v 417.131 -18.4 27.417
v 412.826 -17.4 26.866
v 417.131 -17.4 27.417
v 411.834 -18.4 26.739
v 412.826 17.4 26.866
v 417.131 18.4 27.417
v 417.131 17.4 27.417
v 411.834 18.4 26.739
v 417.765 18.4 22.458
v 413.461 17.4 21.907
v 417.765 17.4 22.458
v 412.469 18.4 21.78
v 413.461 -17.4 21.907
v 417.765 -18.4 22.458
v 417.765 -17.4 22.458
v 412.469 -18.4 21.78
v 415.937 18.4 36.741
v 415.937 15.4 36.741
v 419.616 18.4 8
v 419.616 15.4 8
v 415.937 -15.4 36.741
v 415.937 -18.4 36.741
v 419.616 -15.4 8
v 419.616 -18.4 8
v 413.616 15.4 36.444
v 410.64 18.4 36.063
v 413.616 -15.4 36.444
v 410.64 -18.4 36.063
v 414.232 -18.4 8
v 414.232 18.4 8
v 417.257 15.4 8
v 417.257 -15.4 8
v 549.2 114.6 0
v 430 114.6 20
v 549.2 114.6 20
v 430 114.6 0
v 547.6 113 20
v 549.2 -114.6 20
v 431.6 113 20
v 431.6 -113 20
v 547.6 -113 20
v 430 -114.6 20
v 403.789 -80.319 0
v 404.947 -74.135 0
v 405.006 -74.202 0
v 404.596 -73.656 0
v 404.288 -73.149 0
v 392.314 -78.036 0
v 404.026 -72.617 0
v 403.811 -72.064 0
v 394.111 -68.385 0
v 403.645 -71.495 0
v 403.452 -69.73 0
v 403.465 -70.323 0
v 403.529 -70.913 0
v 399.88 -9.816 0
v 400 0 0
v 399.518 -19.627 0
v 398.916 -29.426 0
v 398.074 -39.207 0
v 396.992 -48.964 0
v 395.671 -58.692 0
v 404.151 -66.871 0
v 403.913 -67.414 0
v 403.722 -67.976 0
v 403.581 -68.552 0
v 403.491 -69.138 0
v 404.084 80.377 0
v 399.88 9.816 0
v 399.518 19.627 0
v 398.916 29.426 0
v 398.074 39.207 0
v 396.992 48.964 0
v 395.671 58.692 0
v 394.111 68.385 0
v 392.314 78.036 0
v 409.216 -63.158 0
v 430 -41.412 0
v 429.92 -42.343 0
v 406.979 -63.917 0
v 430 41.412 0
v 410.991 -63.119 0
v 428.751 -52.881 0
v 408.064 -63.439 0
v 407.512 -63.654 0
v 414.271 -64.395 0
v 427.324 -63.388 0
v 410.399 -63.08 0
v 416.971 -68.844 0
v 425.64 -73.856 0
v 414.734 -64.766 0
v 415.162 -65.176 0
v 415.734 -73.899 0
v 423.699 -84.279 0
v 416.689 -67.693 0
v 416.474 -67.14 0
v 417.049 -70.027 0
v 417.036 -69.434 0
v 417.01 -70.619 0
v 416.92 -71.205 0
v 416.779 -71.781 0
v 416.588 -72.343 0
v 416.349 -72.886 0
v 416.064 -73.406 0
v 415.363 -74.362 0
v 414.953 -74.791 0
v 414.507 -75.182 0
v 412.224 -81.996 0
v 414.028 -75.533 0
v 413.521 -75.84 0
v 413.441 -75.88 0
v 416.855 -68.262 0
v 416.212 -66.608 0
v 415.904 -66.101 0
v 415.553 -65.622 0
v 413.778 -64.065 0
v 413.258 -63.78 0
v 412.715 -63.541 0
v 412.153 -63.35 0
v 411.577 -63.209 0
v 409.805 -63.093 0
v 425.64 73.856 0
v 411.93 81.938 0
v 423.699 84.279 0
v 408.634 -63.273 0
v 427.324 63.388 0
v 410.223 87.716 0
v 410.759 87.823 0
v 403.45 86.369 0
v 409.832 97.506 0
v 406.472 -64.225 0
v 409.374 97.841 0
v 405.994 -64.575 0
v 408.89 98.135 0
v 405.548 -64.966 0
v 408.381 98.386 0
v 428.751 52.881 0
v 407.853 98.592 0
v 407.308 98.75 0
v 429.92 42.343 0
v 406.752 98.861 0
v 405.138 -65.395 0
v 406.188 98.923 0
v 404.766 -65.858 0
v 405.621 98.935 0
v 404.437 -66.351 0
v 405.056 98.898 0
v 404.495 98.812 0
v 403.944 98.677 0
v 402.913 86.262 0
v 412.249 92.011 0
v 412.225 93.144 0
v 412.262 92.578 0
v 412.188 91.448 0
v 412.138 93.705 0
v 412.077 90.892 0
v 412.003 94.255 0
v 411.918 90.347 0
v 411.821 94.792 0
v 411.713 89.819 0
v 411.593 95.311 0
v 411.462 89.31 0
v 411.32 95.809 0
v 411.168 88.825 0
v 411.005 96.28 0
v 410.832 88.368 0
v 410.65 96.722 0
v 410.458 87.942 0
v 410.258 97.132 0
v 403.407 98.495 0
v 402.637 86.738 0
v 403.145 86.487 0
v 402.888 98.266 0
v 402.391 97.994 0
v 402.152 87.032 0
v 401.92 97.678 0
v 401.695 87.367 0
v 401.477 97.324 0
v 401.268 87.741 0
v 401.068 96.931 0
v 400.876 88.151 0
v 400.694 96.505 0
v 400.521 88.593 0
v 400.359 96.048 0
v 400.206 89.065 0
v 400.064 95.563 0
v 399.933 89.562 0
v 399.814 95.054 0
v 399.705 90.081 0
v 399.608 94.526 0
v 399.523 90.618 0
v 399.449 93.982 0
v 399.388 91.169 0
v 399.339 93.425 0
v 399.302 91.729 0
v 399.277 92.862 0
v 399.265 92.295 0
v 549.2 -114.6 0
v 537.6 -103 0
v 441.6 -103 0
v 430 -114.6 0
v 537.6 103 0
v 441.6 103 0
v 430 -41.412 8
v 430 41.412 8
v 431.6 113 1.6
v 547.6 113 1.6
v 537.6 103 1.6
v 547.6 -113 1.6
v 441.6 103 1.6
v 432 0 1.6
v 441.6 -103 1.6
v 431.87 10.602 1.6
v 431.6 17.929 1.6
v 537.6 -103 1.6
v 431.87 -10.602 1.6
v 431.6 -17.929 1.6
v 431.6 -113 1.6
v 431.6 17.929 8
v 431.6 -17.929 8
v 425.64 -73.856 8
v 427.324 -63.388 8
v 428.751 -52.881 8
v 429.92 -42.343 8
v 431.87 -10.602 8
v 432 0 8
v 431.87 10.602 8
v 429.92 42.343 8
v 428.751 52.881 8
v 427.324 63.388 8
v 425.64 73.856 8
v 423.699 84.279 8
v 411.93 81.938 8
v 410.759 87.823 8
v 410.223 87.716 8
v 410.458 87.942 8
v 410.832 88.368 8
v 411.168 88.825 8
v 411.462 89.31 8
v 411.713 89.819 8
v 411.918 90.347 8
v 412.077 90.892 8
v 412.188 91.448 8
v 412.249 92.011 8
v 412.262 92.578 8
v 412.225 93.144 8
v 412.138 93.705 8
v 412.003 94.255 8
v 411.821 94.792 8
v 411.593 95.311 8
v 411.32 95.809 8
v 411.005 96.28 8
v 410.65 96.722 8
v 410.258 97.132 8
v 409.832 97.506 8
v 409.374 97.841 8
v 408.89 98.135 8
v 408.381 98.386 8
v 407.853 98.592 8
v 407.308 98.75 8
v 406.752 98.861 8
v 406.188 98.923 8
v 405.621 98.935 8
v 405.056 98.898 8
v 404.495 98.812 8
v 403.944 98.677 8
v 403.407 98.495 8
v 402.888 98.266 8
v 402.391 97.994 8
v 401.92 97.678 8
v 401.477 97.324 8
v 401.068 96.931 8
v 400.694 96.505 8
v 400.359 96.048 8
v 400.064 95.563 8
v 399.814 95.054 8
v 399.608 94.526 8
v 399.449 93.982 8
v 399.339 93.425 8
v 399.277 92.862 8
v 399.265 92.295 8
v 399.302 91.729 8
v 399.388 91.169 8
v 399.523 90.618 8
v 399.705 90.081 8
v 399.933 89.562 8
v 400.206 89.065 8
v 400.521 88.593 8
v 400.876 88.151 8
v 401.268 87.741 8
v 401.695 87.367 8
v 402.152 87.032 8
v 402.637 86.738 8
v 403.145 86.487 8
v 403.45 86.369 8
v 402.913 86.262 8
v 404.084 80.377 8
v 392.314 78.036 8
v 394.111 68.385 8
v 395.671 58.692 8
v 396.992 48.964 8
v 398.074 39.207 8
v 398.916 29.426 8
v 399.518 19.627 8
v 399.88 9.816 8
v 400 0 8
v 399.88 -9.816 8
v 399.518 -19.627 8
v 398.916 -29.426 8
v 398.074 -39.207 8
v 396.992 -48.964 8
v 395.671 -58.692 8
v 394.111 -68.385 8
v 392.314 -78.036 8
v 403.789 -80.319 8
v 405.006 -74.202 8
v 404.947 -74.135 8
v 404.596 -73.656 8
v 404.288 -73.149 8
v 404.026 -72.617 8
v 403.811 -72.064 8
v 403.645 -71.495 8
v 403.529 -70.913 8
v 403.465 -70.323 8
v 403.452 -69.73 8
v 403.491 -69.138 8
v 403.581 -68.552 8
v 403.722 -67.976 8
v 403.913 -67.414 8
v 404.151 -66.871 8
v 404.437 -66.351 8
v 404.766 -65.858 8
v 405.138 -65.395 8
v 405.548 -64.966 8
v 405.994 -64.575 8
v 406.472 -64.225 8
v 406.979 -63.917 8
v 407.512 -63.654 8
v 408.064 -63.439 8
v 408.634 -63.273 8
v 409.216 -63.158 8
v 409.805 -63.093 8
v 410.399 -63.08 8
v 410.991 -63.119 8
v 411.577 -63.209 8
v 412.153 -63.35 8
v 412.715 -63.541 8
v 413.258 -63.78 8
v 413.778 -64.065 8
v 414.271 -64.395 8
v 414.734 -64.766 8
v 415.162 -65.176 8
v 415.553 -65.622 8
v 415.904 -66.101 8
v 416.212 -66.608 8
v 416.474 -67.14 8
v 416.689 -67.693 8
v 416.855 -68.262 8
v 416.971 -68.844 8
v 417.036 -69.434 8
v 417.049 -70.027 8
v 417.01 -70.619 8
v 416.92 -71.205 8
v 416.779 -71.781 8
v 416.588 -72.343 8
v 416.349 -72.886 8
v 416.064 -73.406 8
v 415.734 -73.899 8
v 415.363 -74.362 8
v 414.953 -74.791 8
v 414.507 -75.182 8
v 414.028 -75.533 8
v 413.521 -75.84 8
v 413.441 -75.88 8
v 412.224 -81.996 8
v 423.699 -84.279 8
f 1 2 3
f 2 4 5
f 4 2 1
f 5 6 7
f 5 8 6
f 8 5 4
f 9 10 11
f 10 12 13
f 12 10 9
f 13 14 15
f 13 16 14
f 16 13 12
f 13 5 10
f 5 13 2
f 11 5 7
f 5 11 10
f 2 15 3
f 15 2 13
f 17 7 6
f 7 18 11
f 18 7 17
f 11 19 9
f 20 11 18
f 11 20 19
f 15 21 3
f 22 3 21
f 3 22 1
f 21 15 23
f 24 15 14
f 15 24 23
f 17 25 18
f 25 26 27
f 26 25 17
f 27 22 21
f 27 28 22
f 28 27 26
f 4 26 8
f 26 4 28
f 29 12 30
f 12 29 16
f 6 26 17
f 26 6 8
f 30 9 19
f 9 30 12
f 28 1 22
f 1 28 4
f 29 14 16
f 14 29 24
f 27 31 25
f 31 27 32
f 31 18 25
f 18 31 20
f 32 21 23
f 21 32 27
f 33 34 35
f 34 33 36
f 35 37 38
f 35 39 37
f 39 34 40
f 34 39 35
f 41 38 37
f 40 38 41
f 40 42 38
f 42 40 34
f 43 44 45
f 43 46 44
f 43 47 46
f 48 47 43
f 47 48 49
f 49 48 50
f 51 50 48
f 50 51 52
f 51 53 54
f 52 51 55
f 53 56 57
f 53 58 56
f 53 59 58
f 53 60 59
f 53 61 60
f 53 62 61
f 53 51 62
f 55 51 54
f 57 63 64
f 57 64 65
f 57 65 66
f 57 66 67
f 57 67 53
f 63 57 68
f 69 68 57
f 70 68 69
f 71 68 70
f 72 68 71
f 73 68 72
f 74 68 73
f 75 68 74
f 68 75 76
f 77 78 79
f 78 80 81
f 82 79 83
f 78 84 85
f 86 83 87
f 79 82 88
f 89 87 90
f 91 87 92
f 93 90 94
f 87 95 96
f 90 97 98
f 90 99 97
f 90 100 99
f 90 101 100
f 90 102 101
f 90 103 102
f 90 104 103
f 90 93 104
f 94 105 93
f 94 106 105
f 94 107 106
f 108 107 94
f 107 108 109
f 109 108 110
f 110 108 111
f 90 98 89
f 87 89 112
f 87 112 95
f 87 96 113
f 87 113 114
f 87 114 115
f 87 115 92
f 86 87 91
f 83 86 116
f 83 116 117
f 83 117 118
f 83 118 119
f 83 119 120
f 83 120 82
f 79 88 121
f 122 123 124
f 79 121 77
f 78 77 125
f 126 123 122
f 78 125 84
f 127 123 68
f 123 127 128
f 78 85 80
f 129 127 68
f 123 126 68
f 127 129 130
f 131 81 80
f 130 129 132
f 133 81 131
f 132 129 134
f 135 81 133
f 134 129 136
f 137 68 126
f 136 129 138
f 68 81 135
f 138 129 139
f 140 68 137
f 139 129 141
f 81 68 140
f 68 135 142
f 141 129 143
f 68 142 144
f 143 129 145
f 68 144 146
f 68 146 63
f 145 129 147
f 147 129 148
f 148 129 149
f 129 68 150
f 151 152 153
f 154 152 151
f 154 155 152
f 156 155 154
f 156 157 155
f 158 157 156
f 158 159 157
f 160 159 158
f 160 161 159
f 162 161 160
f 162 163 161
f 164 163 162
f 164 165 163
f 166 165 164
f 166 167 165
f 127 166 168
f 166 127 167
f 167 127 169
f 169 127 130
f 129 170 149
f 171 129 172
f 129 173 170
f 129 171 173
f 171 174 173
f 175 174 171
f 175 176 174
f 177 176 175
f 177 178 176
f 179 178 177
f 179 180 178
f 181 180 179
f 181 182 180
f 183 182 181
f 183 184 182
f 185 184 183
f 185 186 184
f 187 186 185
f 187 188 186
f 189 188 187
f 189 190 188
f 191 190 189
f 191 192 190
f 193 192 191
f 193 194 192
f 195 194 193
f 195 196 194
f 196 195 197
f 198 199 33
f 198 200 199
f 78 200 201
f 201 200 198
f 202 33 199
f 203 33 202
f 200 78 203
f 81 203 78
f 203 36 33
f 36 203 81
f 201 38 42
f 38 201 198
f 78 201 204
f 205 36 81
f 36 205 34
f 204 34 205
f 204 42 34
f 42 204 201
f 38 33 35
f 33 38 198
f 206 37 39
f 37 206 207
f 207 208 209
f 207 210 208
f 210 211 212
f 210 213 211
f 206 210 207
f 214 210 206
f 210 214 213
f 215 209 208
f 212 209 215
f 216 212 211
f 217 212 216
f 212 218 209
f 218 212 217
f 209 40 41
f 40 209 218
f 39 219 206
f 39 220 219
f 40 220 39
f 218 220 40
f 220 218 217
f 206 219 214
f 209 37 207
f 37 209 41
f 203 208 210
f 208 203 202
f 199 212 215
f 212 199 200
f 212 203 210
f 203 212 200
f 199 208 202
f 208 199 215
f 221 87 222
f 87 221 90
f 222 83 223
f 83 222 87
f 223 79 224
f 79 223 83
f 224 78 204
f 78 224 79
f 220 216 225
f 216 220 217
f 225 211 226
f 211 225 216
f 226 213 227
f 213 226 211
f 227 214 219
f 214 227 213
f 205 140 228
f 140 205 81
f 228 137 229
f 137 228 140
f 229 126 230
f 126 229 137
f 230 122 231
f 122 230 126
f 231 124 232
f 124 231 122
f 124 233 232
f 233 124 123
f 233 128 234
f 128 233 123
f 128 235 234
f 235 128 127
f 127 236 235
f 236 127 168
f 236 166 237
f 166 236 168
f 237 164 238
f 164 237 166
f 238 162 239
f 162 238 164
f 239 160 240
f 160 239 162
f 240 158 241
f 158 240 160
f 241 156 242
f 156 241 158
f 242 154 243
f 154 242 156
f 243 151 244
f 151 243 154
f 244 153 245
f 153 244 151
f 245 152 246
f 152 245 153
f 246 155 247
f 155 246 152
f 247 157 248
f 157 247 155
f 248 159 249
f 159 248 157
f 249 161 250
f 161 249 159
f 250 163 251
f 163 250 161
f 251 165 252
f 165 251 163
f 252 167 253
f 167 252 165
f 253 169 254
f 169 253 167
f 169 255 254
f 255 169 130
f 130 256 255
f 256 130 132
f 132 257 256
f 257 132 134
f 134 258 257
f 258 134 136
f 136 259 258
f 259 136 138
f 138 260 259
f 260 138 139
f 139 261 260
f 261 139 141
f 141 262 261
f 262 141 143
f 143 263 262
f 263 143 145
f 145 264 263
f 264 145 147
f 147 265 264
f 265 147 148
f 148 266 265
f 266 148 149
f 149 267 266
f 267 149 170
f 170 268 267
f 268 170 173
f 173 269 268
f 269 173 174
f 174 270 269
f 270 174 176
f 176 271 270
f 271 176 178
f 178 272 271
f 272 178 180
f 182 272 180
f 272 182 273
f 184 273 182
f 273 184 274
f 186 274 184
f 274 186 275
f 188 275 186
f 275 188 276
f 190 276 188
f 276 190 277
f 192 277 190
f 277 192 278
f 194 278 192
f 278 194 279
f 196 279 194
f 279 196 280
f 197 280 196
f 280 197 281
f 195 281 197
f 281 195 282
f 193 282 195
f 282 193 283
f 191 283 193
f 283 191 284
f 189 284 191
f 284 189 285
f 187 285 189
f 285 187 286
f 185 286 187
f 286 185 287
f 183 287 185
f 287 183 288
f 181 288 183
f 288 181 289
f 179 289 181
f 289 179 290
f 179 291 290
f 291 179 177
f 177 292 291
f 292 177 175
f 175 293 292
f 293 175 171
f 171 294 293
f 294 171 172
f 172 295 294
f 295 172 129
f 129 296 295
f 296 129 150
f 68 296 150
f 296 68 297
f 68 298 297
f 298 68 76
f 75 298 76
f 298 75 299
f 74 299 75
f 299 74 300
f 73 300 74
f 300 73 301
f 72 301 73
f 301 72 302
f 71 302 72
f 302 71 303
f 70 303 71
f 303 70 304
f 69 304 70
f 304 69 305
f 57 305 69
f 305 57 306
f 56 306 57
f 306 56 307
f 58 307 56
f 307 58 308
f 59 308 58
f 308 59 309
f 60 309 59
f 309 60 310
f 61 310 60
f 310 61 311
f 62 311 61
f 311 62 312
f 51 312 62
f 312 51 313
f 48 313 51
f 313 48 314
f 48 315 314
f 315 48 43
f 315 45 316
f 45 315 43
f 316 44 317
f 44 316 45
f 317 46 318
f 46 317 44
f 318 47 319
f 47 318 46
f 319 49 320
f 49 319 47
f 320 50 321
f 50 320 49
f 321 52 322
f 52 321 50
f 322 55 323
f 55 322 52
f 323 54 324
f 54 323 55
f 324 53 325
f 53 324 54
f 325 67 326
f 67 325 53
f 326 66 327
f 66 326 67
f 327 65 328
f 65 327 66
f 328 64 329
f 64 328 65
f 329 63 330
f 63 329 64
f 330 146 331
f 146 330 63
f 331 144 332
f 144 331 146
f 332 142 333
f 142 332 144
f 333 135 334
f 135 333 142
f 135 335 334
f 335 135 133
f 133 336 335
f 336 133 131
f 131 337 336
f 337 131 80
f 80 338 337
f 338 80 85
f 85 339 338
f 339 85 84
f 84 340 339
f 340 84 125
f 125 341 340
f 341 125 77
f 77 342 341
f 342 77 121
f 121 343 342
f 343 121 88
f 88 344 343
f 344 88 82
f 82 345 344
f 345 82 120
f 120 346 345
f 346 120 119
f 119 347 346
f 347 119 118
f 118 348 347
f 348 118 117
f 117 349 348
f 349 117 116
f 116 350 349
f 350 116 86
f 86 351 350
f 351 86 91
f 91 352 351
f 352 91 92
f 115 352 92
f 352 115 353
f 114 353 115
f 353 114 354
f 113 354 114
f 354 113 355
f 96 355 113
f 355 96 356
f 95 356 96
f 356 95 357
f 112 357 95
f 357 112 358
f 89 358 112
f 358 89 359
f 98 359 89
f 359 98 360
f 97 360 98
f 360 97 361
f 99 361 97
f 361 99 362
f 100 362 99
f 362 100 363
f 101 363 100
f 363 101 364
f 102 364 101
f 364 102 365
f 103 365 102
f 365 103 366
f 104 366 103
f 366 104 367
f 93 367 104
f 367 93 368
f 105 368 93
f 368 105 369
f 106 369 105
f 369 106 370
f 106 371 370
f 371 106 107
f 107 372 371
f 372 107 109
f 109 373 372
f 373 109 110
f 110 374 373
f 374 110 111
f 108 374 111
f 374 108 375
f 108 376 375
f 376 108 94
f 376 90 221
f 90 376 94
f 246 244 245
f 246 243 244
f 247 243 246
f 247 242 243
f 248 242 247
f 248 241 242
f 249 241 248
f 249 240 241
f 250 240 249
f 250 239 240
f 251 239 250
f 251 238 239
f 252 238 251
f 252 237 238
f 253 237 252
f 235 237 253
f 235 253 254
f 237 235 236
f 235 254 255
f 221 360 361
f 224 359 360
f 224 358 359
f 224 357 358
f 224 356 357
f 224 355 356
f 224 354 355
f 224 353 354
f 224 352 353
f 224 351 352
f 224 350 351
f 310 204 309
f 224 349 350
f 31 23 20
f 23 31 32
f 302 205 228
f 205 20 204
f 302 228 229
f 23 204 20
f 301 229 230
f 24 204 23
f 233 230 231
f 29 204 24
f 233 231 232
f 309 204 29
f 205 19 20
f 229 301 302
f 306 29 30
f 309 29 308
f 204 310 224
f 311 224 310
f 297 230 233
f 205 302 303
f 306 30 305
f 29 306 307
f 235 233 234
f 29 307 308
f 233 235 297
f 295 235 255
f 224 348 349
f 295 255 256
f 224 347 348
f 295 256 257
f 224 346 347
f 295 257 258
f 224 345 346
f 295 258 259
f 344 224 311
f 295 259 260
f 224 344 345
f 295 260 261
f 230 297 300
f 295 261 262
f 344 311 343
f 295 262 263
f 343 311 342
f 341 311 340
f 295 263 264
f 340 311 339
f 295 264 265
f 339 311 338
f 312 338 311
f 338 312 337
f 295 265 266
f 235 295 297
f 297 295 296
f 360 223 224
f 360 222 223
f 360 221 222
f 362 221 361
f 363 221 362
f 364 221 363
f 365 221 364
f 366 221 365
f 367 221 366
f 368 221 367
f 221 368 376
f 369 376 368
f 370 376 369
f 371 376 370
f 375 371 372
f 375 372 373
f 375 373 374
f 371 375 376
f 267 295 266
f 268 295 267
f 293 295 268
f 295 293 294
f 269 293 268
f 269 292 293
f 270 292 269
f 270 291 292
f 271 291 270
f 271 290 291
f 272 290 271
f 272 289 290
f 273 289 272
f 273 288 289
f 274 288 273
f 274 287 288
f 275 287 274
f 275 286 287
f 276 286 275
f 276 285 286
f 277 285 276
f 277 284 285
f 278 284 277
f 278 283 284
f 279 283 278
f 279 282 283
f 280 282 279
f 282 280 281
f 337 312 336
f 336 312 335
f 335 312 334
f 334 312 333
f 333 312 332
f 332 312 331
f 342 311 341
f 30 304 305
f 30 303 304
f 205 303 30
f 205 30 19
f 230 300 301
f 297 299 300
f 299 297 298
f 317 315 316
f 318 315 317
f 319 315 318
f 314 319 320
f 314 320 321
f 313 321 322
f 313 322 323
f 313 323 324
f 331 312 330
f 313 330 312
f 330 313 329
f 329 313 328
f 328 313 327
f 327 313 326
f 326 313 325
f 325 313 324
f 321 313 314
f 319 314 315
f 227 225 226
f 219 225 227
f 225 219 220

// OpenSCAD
// file: lib.scad
// Shared pieces for the Winterlight PETG parts (Bambu Lab A1, 256 × 256 × 256 mm).
// Millimetres. Measure your own mounting strip and set strip_w / strip_t on the
// command line (-D strip_w=20) or in OpenSCAD's Customizer before printing.
$fn = 72;
strip_w = 30;   // pixel mounting strip width
strip_t = 2;    // pixel mounting strip thickness
clr = 0.4;      // clearance per side, a snug slide fit in PETG
wall = 3;       // channel walls
tie_d = 4.5;    // holes for the 2.5 mm cable ties or an M4 bolt

slot_t = strip_t + 2*clr;
slot_w = strip_w + 2*clr;
// Outside size of a strip channel: radial depth and tangential width.
ch_depth = slot_t + wall;
ch_width = slot_w + 2*wall;

// A channel that holds a strip's end: the strip runs up +Z with its face
// (and its pixels) towards +X. Open on the +X side so the strip drops in,
// with a groove round the outside where a cable tie pulls it home.
module channel(h, floor = 3) {
  z0 = h*0.55;
  difference() {
    translate([-ch_depth, -ch_width/2, 0]) cube([ch_depth, ch_width, h]);
    translate([-slot_t, -slot_w/2, floor]) cube([slot_t + 1, slot_w, h]);
    // Tie groove, 1 mm deep, round the back and both sides.
    difference() {
      translate([-ch_depth - 1, -ch_width/2 - 1, z0]) cube([ch_depth + 2, ch_width + 2, 5]);
      translate([-ch_depth + 1, -ch_width/2 + 1, z0 - 1]) cube([ch_depth + 2, ch_width - 2, 7]);
    }
  }
}

// n channels on a circle of radius r (the strip's face), leaning by tilt
// degrees: positive leans the top inwards, negative outwards.
module channel_ring(n, r, tilt, h, start = 0) {
  intersection() {
    for (i = [0 : n - 1]) rotate([0, 0, start + 360*i/n])
      translate([r, 0, 0]) rotate([0, -tilt, 0]) channel(h);
    translate([-1000, -1000, 0]) cube([2000, 2000, 1000]);
  }
}

// A flat ring with spokes to a centre boss: the plate that ties the channels together.
module spoked_ring(r_out, r_in, t, n, boss_d, arm_w = 8) {
  difference() { cylinder(r = r_out, h = t); translate([0, 0, -1]) cylinder(r = r_in, h = t + 2); }
  for (i = [0 : n - 1]) rotate([0, 0, 360*i/n + 180/n]) translate([0, -arm_w/2, 0]) cube([r_in + 1, arm_w, t]);
  cylinder(d = boss_d, h = t);
}

// Bricks for ballast: the paving in front of the house is stone, so nothing
// can be staked into it. The feet are trays that hold standard concrete paving
// bricks (betonklinkers, 22 × 11 × 8 cm, about 4 kg each). Set your own size.
brick_l = 220;
brick_w = 110;
brick_h = 80;
brick_clr = 3;      // bricks vary a few millimetres
tray_wall = 1.6;
tray_h = 20;
tray_lip = 10;      // the floor is only a ledge round the edge, to save PETG
tray_floor = 1.6;

// A tray for n bricks side by side along Y, its corner at the origin.
// gap: extra room between the bricks (for a rib); returns nothing, see tray_size.
function tray_inner(n = 1, gap = 0) = [brick_l + 2*brick_clr, n*(brick_w + 2*brick_clr) + gap];
module tray(n = 1, gap = 0) {
  in = tray_inner(n, gap);
  out = [in[0] + 2*tray_wall, in[1] + 2*tray_wall];
  difference() {
    cube([out[0], out[1], tray_h]);
    translate([tray_wall, tray_wall, tray_floor]) cube([in[0], in[1], tray_h]);
    translate([tray_wall + tray_lip, tray_wall + tray_lip, -1]) cube([in[0] - 2*tray_lip, in[1] - 2*tray_lip, tray_floor + 2]);
  }
}
// main file
// Wireframe tree, base ring: 16 segments that puzzle together into the
// 84 cm ring round the pole, each holding the foot of one strand. Four of
// them (weighted = true) carry a tray for a paving brick, which holds the ring
// and the tree down on the stone. Print flat side down, no supports.
include <lib.scad>
strands = 16;
r_base = 420;
r_hub = 100;
height = 2500;
weighted = true;
tilt = atan((r_base - r_hub)/height);
band = 32;
ring_h = 8;
ch_h = 32;
half = 180/strands;
knob = 13;
neck = 8;
joint_clr = 0.3;

module knob2d(grow = 0) {
  // Points along the tangent at the segment's end, as a puzzle tab.
  translate([-neck/2 - grow, -1]) square([neck + 2*grow, 7 + grow]);
  translate([0, 6 + knob/2 - 1]) circle(d = knob + 2*grow);
}
module sector2d() {
  r0 = r_base - band/2 - 4;
  r1 = r_base + band/2 - 4;
  polygon(concat([for (a = [-half : half/8 : half]) r0*[cos(a), sin(a)]], [for (a = [half : -half/8 : -half]) r1*[cos(a), sin(a)]]));
}
module segment2d() {
  rm = r_base - 4;
  difference() {
    union() { sector2d(); rotate(half) translate([rm, 0]) knob2d(); }
    rotate(-half) translate([rm, 0]) knob2d(joint_clr);
  }
}

union() {
  linear_extrude(ring_h) segment2d();
  intersection() {
    translate([r_base, 0, ring_h - 3]) rotate([0, -tilt, 0]) channel(ch_h);
    translate([-1000, -1000, ring_h - 3]) cube([2000, 2000, 1000]);
  }
  if (weighted) {
    in = tray_inner(1);
    // The brick lies along the ring, just outside it.
    translate([r_base + band/2 - 6, -(in[0] + 2*tray_wall)/2, 0]) rotate([0, 0, 90]) translate([0, -(in[1] + 2*tray_wall), 0]) tray(1);
  }
}
